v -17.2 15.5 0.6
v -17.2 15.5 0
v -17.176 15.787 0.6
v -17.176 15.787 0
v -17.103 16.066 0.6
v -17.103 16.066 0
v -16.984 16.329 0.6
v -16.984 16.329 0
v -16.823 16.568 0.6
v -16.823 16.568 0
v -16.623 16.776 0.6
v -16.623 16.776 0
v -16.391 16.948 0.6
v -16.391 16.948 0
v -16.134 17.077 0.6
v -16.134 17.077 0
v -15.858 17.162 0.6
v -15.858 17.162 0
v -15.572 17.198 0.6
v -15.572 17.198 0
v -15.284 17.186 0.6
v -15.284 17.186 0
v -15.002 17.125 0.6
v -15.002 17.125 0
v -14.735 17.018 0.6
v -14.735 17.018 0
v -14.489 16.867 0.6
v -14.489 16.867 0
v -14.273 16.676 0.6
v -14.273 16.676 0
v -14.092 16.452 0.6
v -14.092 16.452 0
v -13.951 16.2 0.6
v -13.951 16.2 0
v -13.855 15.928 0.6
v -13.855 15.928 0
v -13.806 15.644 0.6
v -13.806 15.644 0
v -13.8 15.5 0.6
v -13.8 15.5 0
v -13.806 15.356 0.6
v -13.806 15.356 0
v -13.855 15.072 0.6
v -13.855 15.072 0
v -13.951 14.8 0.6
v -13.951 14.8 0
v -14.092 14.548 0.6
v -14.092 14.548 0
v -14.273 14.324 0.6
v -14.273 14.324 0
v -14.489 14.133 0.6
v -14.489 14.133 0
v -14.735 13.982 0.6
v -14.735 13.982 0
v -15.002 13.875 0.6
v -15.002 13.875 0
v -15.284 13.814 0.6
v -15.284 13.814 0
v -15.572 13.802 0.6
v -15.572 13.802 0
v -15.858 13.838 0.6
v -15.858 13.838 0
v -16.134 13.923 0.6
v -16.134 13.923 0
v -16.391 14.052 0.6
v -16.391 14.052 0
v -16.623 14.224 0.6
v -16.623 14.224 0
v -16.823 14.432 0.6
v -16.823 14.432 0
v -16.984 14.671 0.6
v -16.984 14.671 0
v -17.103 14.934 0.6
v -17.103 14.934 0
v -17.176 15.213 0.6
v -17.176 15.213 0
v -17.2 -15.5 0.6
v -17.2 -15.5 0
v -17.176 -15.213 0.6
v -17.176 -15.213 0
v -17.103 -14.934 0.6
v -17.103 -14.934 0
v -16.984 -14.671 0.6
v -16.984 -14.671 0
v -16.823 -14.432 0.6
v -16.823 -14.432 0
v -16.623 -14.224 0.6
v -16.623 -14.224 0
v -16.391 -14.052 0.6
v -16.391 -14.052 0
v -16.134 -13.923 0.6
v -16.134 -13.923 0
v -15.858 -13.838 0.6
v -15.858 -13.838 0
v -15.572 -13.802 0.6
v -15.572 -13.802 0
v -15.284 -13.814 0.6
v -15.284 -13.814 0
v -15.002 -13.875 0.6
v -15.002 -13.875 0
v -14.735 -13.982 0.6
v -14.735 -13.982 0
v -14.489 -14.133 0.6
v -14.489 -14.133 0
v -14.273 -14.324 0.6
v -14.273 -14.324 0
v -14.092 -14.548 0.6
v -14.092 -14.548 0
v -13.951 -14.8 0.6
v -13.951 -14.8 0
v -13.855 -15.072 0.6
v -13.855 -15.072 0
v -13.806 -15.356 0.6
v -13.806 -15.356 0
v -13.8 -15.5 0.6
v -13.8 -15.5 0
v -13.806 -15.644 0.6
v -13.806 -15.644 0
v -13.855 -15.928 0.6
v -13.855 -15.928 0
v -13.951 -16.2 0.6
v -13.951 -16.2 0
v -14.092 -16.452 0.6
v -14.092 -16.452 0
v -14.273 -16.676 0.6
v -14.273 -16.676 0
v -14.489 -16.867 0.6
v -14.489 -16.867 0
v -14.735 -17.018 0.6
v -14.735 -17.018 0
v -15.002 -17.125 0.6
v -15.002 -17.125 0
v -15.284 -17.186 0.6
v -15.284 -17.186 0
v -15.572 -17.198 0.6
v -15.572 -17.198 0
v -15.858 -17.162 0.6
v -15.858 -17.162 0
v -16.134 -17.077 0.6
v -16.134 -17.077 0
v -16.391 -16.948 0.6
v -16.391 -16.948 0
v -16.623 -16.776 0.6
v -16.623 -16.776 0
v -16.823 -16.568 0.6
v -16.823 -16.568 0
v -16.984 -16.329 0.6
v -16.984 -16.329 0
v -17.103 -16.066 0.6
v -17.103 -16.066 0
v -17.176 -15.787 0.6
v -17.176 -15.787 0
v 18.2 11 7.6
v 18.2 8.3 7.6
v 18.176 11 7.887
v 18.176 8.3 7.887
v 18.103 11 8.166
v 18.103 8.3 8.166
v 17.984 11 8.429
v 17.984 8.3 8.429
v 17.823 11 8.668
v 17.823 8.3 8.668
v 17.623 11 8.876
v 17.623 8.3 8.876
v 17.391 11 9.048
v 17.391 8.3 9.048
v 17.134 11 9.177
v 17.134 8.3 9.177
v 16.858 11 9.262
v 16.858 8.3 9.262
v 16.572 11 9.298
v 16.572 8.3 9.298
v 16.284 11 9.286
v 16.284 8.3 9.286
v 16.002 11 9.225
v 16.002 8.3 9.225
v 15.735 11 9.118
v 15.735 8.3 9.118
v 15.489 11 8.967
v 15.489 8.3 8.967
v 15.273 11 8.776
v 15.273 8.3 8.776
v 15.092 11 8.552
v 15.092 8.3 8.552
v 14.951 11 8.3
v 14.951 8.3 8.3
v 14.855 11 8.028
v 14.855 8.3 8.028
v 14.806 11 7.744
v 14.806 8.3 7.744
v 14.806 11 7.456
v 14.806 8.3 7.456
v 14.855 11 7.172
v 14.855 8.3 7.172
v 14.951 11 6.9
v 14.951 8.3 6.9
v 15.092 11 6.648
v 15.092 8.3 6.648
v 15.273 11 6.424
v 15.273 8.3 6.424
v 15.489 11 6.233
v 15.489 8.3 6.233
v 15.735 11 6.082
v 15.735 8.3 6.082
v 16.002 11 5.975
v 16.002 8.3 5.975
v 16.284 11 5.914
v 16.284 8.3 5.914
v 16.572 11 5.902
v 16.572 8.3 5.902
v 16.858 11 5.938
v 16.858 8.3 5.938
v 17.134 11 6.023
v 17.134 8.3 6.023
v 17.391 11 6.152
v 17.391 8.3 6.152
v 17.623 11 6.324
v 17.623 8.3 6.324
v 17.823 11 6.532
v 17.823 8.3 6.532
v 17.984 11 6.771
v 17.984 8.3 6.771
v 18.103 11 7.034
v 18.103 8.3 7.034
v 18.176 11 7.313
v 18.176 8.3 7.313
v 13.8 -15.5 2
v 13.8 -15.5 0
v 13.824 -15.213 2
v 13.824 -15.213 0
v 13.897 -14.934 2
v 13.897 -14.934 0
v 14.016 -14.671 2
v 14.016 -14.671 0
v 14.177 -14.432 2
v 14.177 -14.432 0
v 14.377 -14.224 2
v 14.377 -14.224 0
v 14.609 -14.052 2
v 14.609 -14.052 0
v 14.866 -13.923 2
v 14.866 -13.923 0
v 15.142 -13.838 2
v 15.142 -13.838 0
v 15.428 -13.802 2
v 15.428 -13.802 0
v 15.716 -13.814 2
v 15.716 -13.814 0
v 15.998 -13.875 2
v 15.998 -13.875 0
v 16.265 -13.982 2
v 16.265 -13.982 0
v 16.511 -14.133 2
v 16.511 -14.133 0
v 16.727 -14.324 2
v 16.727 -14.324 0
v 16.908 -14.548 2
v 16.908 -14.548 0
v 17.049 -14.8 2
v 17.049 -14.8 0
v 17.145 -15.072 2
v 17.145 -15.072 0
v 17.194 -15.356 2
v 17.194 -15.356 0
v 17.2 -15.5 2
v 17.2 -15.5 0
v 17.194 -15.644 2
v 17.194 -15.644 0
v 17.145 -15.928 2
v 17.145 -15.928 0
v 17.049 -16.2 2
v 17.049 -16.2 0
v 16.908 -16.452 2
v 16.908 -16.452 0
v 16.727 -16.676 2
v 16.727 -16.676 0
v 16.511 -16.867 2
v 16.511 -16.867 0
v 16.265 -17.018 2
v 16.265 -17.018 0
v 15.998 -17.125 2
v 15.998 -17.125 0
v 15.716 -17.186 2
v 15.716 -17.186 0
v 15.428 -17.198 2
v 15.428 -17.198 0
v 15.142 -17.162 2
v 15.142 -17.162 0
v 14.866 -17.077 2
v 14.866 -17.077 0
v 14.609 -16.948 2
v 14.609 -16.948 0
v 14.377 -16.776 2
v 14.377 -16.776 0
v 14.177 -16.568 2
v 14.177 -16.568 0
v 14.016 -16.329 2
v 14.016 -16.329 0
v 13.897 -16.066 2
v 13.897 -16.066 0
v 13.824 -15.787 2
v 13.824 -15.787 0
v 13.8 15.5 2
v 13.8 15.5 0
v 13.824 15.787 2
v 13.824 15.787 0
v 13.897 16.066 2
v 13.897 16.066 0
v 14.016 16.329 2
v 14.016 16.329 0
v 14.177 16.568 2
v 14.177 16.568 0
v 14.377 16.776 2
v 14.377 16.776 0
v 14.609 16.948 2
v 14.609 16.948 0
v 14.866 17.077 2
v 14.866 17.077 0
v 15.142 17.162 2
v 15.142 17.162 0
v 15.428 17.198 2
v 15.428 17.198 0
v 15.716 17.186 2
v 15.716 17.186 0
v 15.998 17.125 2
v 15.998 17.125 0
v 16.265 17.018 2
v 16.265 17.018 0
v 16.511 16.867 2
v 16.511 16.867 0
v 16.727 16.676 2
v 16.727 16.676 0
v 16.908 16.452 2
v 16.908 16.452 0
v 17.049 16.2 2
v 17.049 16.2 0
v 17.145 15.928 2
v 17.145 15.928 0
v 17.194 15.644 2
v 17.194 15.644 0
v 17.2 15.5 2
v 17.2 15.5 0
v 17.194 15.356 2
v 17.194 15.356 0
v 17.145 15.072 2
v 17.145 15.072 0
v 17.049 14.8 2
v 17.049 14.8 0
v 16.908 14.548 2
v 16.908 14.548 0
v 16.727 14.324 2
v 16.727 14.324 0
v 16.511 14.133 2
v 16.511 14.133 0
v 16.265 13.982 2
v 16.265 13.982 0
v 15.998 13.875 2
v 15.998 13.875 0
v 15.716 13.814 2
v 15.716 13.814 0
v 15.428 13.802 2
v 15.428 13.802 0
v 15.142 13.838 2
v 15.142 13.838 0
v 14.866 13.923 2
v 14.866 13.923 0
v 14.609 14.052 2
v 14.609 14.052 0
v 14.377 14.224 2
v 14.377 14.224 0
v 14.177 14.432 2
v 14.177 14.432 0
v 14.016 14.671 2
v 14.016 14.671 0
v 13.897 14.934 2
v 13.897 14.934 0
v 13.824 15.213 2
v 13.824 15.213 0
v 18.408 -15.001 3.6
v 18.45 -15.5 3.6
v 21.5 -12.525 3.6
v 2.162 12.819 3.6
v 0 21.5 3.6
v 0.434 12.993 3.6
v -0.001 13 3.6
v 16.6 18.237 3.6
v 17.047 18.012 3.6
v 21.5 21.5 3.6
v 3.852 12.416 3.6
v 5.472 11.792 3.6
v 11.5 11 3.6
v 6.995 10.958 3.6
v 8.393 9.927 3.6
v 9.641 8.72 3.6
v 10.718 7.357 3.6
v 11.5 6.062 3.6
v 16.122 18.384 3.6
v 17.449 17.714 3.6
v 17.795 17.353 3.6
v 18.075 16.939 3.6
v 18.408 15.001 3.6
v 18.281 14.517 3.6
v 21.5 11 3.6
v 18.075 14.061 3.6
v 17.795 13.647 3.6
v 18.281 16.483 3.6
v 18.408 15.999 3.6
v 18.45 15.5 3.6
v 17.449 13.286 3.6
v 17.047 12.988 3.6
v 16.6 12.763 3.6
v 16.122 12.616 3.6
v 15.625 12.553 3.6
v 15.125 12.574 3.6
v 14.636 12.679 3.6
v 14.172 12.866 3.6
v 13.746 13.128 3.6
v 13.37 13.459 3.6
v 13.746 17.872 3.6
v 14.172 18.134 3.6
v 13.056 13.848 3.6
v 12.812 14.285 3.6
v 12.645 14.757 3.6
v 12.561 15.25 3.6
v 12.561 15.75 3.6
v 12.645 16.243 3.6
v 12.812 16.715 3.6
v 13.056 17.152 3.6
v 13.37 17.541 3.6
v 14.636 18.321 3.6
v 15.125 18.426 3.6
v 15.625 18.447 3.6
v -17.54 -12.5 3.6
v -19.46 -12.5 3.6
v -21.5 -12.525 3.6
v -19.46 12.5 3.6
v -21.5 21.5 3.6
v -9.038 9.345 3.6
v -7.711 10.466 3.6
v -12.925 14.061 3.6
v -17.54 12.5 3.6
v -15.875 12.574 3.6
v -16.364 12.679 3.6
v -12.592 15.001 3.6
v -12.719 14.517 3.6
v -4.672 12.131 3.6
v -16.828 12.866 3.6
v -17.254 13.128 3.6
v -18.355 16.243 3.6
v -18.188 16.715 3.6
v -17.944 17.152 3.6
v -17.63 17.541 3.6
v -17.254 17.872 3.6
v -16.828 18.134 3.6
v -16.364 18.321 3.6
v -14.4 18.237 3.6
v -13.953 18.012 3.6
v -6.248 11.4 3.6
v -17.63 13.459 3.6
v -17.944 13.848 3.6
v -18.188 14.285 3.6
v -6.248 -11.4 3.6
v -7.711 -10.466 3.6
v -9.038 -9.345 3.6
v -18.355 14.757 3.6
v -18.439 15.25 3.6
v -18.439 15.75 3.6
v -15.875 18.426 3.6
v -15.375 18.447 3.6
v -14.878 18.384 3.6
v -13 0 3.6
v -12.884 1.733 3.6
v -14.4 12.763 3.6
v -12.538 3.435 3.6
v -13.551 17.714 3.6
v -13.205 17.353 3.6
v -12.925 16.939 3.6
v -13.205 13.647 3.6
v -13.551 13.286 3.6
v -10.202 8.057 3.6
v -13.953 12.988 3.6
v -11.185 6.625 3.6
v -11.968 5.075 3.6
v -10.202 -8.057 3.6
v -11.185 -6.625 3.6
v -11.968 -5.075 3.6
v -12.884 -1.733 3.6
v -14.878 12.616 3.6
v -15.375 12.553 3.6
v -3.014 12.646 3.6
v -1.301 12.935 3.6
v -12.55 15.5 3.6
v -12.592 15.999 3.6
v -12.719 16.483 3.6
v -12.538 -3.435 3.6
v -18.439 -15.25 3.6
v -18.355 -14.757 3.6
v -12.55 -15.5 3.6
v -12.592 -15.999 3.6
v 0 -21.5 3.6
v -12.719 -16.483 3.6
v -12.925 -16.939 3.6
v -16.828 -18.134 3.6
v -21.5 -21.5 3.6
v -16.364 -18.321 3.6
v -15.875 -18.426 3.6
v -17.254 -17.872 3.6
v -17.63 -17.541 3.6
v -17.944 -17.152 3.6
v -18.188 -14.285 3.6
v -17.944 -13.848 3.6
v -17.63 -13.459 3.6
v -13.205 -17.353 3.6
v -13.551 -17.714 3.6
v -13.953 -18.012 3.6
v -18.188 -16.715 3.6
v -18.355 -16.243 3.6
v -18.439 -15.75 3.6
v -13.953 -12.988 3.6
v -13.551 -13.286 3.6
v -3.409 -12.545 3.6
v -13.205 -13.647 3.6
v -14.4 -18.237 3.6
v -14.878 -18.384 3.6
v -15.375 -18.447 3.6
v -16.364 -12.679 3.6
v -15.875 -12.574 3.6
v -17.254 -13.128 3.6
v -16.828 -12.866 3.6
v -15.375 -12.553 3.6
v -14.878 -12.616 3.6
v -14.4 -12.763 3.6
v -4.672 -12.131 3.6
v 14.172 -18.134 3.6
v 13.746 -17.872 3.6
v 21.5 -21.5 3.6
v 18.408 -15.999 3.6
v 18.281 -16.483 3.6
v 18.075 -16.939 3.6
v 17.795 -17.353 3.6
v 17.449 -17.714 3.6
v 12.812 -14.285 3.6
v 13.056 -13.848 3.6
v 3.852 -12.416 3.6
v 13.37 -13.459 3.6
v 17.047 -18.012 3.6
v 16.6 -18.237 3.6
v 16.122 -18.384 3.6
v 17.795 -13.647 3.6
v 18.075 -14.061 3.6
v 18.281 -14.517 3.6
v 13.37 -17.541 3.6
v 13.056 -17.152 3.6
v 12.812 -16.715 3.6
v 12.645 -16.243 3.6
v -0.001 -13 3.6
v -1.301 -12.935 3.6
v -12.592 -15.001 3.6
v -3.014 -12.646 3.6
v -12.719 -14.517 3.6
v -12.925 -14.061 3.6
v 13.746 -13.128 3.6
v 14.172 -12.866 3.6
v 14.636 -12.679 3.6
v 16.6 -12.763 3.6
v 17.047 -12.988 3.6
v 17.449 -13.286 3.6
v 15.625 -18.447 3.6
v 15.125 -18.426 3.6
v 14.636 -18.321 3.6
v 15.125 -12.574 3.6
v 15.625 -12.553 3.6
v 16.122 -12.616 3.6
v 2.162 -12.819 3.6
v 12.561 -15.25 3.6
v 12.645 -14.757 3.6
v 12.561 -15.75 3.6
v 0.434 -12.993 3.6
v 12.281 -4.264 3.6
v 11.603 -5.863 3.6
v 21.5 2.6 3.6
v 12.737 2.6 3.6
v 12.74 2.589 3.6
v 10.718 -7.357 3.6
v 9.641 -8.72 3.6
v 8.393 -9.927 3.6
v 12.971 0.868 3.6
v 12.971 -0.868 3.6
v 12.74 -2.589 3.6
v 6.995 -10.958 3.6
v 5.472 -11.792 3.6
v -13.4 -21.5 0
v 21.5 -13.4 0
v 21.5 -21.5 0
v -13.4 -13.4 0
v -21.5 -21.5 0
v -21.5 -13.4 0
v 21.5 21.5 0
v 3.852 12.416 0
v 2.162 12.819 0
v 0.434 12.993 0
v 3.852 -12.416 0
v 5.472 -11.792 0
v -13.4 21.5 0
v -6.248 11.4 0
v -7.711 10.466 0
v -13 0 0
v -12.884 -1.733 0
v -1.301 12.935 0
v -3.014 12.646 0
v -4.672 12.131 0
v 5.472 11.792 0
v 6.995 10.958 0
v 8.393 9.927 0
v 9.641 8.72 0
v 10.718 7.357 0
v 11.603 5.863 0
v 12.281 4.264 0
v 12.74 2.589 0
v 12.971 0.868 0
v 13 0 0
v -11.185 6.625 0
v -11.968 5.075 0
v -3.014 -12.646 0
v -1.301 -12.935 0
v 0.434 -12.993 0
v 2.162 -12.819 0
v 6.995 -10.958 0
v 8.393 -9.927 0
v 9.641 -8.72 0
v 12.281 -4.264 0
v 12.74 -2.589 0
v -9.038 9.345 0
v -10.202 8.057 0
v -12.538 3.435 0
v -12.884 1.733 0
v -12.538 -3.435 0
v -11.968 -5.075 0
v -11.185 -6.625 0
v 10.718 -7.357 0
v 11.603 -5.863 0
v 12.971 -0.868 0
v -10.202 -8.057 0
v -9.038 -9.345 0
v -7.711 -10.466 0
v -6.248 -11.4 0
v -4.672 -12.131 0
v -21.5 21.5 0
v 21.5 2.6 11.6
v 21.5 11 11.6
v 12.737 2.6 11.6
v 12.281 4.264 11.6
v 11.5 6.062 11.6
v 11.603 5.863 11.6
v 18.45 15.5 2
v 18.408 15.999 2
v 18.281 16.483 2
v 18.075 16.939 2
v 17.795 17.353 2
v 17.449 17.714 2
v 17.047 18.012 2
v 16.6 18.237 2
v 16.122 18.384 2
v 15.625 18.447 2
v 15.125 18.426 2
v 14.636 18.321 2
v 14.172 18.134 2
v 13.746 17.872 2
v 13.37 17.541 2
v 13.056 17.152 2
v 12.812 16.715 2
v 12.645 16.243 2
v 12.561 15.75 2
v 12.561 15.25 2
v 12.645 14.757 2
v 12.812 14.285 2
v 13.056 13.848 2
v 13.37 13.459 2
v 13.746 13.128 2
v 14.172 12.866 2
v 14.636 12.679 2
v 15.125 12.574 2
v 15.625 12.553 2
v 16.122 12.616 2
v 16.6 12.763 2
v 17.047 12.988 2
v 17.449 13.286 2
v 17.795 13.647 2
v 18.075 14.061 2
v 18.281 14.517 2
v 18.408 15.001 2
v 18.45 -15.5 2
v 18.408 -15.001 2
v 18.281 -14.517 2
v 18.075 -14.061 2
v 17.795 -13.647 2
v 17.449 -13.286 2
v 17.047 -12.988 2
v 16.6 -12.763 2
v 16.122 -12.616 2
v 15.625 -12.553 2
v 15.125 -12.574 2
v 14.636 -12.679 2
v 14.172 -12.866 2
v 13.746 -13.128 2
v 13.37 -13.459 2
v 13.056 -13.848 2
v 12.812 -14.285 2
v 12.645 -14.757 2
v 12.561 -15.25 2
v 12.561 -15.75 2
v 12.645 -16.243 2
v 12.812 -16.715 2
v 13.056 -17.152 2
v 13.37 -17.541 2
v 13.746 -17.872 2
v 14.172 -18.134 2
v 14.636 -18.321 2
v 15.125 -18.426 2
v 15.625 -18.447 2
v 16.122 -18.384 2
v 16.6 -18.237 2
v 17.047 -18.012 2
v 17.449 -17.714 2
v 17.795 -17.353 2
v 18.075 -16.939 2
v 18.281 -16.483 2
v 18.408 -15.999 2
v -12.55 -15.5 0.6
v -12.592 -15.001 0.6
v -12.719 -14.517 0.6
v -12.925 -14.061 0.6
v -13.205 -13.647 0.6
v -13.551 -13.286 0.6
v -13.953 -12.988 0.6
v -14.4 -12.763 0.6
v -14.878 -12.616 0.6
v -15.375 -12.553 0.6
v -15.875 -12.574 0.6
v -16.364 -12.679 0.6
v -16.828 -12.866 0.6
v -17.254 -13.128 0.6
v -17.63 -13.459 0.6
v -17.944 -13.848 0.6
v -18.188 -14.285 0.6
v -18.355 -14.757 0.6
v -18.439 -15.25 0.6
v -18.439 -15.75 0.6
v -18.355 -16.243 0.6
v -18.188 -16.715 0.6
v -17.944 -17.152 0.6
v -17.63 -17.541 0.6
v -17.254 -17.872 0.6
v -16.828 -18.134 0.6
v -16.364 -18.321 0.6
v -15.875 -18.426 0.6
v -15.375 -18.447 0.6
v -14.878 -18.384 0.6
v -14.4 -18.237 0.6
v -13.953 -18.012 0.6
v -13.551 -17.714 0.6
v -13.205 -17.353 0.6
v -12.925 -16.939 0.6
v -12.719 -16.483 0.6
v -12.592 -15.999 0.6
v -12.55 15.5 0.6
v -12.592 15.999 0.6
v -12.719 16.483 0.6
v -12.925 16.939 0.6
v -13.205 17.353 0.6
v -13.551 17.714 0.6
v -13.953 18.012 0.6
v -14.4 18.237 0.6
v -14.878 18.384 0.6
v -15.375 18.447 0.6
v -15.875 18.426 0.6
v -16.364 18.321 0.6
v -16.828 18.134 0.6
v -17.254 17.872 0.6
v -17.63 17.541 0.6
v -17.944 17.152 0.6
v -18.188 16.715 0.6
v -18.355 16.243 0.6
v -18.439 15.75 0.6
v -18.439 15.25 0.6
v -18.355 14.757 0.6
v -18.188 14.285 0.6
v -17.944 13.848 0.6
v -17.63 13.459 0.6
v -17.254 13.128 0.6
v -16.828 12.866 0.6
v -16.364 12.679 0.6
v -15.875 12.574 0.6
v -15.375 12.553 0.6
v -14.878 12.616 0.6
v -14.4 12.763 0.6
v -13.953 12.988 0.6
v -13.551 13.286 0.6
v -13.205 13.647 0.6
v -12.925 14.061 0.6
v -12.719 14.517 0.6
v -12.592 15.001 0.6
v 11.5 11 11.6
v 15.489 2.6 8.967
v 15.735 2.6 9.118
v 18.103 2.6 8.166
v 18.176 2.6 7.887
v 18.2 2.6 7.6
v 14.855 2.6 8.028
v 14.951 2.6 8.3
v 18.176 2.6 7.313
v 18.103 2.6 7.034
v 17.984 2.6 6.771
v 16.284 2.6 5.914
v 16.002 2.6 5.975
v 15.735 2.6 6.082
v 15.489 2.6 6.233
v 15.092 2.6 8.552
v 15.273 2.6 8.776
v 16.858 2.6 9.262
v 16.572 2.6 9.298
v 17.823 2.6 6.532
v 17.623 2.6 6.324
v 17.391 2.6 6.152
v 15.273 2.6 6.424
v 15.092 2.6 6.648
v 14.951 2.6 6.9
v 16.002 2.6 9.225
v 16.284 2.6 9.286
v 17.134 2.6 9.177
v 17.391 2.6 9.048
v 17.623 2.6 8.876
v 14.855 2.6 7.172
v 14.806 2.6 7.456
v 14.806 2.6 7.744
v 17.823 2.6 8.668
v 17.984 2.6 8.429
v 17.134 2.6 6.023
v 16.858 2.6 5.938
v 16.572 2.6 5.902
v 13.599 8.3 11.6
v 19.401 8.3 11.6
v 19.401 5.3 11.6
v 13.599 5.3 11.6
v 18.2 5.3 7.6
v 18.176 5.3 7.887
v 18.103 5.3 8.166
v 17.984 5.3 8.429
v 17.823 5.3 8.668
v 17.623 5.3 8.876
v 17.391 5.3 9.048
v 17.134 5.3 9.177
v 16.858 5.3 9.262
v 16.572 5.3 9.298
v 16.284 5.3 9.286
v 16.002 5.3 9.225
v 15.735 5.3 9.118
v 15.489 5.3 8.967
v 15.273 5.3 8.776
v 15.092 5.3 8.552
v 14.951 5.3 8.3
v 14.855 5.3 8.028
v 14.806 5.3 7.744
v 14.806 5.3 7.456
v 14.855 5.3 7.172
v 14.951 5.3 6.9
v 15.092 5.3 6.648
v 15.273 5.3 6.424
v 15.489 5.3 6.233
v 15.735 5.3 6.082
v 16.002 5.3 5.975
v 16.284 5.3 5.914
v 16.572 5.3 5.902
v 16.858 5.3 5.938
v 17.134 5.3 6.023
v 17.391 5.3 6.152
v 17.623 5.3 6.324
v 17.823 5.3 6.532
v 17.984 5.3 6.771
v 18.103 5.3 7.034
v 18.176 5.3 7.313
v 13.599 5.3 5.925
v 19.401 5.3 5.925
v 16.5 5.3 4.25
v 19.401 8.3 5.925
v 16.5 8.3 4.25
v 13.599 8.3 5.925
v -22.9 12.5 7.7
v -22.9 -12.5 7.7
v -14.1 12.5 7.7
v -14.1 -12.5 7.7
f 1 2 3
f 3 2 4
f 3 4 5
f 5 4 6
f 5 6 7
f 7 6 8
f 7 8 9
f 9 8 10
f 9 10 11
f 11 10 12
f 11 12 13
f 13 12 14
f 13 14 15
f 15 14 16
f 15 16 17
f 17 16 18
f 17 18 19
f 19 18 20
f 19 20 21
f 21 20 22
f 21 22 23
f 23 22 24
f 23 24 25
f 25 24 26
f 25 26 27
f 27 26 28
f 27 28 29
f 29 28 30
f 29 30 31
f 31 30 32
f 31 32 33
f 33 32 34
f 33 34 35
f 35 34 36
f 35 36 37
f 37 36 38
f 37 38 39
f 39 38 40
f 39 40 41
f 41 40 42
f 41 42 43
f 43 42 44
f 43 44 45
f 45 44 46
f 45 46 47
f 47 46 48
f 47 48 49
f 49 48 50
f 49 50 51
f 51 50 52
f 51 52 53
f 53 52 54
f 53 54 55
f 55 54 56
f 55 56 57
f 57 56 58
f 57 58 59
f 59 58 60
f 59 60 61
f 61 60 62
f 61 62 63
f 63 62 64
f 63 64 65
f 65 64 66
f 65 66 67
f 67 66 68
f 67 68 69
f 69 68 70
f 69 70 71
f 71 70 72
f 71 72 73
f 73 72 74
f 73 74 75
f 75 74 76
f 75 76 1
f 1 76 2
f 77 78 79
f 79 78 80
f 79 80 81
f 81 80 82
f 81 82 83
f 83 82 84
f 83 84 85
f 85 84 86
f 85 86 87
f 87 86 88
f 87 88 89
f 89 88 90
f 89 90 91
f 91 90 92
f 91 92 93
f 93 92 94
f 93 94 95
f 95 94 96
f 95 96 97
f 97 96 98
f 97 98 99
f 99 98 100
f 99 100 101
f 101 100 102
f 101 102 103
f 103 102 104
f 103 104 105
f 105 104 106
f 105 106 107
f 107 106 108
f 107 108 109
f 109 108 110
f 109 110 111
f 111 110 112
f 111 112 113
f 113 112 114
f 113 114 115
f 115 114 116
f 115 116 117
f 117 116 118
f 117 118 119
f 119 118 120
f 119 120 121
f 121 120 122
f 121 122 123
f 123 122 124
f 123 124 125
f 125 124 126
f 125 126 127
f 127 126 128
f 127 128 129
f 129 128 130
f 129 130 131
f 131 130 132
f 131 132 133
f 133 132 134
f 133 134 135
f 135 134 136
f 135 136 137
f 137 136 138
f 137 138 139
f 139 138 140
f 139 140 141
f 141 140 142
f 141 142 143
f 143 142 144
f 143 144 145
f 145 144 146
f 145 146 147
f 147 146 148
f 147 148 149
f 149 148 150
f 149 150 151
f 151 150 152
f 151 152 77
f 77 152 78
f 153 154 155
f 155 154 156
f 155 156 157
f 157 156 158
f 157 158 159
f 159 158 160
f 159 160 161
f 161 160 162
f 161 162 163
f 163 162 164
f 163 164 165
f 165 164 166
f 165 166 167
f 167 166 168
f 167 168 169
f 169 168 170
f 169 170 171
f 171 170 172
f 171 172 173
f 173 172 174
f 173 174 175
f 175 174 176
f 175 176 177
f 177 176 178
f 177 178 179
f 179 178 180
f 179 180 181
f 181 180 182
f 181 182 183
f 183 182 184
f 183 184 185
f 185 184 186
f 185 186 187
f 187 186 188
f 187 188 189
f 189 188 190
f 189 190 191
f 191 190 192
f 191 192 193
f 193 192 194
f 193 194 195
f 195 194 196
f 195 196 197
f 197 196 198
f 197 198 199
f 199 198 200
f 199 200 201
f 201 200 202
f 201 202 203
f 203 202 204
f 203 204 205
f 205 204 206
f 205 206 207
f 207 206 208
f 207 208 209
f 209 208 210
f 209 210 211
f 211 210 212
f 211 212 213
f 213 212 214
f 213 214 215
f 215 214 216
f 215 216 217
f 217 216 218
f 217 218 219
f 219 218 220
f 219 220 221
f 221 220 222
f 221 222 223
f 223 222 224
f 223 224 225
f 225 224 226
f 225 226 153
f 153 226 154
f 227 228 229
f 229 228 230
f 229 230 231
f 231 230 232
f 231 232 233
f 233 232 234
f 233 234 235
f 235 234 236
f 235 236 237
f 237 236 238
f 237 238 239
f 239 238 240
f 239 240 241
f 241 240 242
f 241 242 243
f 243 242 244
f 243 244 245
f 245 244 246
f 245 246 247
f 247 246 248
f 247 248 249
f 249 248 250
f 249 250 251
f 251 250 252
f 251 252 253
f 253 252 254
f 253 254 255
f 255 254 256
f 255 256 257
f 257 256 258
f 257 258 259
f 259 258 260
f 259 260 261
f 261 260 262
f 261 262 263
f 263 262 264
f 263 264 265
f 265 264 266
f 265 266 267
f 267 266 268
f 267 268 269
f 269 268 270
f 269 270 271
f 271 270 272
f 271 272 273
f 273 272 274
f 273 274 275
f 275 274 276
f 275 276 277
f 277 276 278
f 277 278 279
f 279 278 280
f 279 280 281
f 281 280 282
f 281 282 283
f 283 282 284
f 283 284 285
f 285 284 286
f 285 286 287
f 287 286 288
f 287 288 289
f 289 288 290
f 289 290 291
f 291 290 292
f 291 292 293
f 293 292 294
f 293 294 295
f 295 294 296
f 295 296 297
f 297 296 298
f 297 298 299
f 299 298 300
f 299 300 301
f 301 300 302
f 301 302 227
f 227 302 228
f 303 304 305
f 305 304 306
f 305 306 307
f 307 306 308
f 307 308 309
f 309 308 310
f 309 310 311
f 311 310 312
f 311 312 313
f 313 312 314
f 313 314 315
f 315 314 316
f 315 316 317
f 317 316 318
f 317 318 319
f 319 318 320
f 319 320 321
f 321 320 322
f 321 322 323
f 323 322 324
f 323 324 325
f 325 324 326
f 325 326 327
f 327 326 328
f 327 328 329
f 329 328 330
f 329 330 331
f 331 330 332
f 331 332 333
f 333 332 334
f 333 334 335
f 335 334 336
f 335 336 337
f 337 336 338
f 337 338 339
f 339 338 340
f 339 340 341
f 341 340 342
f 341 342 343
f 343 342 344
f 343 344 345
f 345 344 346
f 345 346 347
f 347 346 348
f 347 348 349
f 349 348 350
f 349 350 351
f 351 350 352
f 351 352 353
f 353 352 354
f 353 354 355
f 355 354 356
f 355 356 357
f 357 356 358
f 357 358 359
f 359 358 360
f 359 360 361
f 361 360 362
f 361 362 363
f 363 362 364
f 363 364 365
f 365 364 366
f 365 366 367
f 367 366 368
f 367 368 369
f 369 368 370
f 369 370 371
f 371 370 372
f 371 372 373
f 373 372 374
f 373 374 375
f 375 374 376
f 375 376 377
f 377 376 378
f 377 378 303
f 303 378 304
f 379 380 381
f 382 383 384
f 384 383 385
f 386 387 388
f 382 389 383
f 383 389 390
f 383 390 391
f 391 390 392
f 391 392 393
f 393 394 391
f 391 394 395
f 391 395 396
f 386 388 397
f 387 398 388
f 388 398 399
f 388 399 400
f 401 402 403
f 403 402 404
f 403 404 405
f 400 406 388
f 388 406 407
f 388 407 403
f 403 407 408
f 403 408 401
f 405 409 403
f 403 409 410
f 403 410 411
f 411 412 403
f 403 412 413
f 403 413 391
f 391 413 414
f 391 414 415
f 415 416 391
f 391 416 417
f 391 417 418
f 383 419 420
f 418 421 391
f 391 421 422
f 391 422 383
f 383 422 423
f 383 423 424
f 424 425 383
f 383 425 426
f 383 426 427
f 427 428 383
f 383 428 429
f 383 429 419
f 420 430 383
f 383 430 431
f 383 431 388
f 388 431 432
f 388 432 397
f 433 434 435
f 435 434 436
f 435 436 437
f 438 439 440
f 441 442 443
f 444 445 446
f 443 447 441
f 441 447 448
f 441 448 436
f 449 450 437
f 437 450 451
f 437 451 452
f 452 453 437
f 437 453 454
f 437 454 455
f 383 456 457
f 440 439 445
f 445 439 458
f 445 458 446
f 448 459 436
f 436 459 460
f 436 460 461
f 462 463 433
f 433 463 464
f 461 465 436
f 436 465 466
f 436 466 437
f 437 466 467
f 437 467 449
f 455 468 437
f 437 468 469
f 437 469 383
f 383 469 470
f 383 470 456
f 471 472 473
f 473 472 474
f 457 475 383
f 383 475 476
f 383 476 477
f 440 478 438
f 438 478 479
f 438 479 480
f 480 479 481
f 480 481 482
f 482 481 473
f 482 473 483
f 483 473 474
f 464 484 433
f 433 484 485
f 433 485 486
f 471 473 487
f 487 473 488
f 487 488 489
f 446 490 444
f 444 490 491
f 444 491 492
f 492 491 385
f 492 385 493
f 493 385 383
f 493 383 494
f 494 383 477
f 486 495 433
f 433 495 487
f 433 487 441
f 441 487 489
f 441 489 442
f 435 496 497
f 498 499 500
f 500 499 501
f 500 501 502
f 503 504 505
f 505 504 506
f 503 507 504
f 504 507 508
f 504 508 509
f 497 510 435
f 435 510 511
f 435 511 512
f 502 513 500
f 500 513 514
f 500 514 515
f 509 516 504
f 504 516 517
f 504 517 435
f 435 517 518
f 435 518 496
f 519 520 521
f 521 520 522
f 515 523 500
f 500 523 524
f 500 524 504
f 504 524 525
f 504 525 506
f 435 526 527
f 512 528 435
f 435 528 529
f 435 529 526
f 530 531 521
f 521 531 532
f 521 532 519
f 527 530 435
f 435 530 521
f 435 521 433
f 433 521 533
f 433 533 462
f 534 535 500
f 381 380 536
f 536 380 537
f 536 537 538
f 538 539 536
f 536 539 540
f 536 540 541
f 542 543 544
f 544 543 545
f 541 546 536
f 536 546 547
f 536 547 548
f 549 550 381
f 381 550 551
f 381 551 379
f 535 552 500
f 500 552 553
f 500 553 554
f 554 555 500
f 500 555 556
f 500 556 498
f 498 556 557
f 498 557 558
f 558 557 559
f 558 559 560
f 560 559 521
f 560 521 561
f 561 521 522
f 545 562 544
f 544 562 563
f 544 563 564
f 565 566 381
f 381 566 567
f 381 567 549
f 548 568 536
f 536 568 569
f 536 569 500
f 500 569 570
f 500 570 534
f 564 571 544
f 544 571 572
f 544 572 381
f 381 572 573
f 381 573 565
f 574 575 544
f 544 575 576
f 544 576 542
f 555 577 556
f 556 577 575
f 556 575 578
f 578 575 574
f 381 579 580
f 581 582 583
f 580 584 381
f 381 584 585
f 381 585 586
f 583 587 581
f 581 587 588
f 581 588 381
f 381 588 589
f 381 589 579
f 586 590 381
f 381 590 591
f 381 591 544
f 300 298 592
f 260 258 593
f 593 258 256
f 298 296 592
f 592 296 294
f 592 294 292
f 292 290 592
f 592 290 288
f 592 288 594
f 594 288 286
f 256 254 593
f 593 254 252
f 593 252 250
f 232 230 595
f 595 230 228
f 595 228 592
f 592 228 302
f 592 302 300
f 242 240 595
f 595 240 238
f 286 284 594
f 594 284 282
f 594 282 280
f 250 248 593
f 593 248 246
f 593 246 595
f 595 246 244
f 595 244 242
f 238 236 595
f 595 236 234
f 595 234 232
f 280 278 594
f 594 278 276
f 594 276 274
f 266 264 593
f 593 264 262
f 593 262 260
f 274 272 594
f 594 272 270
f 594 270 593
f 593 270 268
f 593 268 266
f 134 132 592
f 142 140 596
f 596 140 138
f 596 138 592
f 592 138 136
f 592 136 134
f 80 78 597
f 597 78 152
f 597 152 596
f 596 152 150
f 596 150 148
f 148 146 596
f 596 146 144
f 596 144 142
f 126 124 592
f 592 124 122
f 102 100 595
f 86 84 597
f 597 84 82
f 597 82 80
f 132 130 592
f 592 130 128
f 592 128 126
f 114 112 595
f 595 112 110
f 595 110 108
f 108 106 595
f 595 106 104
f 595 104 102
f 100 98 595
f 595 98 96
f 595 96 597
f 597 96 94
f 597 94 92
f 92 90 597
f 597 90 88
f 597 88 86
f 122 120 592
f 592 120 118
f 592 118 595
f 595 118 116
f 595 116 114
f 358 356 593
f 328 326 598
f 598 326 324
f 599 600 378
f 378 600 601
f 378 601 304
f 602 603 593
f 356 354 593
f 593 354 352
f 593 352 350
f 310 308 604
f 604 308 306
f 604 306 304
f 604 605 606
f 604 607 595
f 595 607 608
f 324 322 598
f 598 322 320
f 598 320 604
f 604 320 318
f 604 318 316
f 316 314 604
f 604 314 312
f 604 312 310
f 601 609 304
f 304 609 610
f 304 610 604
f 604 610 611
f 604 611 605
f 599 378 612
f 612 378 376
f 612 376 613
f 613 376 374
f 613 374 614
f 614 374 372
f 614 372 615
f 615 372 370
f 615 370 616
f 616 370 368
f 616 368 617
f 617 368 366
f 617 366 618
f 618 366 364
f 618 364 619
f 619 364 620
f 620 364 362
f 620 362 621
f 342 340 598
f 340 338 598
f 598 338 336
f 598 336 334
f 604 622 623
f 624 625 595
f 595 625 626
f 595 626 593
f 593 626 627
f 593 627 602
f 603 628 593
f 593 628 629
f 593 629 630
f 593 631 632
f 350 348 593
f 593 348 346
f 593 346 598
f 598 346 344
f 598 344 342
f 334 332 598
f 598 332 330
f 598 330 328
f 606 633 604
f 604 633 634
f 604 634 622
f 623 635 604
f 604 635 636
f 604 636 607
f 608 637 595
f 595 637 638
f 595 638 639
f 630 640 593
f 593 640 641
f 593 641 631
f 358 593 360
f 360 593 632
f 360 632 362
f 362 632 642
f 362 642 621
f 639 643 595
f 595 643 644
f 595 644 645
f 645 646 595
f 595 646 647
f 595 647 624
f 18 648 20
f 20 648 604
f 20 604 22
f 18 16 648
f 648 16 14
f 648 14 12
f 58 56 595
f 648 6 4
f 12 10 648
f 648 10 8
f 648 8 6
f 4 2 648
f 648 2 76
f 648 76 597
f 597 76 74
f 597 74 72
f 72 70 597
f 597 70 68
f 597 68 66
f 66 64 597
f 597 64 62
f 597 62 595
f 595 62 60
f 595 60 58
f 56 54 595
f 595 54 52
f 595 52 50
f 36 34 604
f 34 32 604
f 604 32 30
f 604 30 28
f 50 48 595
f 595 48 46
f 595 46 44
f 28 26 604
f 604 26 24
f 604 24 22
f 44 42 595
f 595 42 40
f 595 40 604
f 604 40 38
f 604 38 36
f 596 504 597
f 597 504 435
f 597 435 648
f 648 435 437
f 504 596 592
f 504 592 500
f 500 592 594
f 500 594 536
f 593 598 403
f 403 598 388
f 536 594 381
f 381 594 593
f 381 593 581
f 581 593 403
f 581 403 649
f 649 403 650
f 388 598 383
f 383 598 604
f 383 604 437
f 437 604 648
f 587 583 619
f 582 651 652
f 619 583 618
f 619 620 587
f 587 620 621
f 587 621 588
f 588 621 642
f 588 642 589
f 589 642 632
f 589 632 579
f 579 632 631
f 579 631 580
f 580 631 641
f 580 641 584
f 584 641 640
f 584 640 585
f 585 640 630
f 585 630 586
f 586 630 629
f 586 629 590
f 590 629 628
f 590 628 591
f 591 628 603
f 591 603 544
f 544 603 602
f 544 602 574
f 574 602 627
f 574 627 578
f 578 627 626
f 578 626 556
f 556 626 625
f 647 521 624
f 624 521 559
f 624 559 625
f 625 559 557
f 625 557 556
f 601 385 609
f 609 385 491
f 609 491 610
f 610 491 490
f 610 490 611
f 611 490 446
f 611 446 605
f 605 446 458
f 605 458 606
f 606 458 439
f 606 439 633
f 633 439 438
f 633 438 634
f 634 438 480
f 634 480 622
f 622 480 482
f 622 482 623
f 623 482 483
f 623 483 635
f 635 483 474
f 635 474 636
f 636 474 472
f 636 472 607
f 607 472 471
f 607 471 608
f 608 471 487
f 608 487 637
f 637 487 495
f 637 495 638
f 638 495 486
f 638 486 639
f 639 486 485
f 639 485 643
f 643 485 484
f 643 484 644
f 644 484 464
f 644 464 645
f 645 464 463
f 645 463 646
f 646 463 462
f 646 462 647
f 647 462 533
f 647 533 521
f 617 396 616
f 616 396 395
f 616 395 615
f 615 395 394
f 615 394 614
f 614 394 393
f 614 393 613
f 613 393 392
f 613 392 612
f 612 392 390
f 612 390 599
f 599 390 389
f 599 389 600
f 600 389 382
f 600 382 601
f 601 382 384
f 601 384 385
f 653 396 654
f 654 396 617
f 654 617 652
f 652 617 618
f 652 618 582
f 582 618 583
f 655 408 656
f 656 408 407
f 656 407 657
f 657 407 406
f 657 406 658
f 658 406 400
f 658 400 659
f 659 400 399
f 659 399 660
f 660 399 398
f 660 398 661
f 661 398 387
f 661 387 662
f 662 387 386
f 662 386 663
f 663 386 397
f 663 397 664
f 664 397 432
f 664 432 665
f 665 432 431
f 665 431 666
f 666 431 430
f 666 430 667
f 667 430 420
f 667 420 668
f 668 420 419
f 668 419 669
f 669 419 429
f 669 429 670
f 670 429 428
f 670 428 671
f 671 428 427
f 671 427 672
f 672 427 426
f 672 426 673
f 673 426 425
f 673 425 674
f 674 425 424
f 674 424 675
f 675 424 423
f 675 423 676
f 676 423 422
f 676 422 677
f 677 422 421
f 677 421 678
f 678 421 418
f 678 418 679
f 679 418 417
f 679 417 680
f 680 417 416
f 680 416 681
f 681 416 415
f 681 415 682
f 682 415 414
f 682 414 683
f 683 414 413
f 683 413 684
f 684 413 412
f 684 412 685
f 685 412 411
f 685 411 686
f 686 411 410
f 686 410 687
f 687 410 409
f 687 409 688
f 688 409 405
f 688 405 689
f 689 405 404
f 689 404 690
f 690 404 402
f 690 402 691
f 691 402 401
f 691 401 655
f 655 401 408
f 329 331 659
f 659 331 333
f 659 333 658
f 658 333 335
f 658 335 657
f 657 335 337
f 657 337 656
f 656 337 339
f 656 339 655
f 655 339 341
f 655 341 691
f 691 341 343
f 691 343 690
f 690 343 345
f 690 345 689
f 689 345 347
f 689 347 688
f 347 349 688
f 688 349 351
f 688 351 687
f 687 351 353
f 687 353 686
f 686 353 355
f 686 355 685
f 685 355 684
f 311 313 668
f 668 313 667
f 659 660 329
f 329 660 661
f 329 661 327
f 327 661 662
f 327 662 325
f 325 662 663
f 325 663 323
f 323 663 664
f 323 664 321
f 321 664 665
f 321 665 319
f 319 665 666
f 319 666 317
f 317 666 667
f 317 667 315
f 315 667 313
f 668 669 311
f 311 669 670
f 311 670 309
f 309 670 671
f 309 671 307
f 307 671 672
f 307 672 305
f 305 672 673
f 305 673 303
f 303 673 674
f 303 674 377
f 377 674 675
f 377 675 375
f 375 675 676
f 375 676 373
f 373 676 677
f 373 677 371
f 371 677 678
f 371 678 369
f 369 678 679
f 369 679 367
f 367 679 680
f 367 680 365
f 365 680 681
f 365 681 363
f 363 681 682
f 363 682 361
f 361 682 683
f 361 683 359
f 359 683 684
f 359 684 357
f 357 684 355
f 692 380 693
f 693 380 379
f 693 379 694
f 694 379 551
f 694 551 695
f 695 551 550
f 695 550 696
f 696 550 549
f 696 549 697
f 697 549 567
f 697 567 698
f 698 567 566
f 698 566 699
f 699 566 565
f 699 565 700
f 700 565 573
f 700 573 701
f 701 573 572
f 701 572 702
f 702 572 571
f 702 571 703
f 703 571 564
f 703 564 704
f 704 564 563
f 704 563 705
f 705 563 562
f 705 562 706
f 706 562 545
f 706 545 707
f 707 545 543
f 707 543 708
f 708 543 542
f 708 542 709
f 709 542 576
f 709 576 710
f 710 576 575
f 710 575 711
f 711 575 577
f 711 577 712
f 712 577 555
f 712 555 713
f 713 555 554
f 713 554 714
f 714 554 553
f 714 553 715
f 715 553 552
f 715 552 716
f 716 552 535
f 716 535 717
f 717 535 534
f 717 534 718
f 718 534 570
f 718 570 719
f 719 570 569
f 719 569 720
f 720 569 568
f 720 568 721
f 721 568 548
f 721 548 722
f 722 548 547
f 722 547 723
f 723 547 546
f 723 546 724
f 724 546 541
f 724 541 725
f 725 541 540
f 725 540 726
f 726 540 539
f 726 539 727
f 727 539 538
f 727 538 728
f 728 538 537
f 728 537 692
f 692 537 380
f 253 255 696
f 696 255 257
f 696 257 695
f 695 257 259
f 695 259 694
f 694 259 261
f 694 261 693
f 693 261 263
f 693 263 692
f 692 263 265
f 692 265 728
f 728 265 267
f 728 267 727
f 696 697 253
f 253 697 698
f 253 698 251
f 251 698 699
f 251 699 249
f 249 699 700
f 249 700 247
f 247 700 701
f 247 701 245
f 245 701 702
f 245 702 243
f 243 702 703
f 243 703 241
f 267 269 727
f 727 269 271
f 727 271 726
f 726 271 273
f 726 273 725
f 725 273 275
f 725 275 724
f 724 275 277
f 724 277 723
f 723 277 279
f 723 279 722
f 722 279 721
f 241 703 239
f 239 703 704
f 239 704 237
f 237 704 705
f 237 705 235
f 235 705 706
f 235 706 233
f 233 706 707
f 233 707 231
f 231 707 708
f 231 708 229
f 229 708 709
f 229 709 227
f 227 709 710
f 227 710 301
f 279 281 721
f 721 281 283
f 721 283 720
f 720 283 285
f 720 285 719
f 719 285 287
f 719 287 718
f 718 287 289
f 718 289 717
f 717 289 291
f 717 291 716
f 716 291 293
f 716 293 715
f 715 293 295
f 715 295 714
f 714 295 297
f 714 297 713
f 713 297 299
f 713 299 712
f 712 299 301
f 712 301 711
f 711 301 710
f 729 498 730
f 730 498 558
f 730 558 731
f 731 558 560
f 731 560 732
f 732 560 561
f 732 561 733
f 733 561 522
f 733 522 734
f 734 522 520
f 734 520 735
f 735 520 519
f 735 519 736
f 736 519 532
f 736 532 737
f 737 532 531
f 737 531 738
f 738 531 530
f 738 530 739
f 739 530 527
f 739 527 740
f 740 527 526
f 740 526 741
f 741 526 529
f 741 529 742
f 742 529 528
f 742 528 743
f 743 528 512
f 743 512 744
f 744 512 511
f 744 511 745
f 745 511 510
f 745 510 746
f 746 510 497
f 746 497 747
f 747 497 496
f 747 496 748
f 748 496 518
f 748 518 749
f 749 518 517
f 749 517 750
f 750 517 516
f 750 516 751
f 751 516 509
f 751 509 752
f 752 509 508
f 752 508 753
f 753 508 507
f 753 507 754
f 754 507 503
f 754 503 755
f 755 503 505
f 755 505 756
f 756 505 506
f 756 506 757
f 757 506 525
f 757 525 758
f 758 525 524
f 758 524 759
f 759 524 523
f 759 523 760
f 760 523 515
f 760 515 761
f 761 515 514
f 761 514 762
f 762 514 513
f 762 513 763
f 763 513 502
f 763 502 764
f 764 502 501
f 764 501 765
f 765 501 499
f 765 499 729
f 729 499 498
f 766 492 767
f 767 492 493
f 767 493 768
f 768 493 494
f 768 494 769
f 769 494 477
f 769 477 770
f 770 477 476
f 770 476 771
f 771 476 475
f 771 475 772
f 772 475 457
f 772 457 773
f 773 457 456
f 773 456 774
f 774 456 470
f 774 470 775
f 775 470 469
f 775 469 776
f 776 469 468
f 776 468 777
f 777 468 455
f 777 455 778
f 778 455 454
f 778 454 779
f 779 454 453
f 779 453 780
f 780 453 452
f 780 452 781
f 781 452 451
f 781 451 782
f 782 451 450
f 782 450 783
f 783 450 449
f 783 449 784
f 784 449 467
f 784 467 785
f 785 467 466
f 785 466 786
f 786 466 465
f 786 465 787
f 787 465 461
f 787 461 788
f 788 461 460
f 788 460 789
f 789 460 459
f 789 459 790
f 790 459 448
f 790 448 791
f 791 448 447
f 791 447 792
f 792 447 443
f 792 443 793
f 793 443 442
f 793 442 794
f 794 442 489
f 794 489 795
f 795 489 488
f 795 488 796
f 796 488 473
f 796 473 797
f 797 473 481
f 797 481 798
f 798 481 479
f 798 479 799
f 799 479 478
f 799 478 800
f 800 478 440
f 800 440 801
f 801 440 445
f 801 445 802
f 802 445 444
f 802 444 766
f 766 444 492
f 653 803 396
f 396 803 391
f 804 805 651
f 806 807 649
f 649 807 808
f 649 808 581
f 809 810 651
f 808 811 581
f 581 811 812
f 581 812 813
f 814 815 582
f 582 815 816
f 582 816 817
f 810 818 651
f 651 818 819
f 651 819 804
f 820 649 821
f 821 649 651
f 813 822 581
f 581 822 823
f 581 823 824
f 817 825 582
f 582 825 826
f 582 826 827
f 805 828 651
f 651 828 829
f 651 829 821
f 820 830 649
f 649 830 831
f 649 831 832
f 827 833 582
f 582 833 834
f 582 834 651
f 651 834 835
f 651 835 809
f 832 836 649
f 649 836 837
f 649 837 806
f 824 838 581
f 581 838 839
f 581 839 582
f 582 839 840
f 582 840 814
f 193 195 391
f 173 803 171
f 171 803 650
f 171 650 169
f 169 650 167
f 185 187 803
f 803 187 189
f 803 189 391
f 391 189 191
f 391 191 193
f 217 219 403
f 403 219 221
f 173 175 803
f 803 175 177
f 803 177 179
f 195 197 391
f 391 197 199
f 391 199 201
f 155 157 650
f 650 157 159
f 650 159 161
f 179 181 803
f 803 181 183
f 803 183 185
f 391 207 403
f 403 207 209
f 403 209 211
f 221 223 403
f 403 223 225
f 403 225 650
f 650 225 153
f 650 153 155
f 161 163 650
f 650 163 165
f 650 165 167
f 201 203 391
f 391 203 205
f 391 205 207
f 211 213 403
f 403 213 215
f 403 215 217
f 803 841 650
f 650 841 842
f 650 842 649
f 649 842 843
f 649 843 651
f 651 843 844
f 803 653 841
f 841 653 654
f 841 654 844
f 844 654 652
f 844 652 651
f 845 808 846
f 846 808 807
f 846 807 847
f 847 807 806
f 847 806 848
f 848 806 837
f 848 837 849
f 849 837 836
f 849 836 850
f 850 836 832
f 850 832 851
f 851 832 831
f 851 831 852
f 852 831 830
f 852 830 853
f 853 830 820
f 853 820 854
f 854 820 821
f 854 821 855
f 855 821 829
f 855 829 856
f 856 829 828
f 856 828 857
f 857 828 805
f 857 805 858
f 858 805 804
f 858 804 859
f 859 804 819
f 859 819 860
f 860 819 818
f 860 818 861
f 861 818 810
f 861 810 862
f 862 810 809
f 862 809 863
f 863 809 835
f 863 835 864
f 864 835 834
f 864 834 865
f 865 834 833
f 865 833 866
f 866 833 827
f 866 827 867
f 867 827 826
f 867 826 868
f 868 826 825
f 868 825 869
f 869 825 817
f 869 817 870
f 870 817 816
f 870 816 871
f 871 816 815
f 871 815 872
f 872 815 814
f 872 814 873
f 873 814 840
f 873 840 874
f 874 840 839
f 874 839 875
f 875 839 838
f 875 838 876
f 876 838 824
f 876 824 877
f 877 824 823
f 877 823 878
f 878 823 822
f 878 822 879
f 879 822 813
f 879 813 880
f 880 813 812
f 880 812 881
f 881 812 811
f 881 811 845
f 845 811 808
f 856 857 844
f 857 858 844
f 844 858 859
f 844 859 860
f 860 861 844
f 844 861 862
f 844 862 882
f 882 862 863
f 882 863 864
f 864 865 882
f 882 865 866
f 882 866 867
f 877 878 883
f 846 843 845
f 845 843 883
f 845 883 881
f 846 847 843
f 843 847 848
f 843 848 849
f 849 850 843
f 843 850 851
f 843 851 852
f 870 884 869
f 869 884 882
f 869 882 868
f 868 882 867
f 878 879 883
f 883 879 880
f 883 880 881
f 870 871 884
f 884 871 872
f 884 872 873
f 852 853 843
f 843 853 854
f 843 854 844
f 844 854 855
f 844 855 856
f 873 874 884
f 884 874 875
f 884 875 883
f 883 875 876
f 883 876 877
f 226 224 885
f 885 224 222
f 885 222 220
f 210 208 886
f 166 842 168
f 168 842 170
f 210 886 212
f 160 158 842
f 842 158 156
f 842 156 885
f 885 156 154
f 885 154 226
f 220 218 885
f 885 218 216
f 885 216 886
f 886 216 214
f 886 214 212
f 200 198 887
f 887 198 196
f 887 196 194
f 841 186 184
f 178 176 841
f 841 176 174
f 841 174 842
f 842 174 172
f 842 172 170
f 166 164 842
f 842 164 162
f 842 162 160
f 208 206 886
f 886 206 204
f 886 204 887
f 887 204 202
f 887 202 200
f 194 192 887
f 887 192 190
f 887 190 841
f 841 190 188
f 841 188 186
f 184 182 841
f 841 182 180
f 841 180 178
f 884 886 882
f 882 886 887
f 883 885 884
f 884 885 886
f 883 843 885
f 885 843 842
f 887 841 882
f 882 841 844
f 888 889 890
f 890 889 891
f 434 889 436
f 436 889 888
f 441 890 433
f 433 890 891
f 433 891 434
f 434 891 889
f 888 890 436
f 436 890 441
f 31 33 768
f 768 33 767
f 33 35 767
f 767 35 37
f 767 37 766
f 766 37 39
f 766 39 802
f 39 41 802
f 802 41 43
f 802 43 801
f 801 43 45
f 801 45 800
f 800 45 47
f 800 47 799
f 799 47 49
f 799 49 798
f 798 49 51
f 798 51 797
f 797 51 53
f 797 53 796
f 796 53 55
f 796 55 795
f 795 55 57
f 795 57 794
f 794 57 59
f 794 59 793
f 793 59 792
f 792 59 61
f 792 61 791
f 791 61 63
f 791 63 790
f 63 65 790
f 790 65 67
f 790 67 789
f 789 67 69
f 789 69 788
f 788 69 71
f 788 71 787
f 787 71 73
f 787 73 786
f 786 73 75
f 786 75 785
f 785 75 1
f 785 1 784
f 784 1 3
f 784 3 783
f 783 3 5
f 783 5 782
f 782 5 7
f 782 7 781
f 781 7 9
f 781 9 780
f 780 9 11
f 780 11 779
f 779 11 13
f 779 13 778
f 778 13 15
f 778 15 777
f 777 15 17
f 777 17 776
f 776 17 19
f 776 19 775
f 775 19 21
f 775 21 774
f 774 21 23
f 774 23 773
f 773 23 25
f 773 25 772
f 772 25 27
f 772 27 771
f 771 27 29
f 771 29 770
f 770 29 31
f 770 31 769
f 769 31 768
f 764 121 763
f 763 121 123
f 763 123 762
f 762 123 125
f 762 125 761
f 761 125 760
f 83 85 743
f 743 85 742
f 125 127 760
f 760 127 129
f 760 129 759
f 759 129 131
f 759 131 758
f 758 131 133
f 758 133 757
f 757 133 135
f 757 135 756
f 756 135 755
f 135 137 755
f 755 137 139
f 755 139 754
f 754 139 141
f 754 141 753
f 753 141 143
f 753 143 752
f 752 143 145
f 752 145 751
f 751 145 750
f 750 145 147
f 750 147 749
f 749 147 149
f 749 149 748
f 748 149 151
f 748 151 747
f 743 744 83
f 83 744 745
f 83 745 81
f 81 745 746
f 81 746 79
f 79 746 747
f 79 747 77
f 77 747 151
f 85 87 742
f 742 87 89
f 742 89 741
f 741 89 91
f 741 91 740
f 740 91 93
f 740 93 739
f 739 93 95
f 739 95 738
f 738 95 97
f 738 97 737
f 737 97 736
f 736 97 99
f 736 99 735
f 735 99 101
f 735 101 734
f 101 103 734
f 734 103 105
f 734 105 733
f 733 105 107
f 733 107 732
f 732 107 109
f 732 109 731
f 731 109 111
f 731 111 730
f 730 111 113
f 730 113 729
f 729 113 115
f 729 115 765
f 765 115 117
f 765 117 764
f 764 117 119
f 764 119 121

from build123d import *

# Parameters (mm, degrees)
CROQUIS1_W                   = 43
CROQUIS1_H                   = 43
CROQUIS1_R                   = 13
CROQUIS1_R_2                 = 1.7
SALIENTE_EXTRUIR1_DEPTH      = 3.6
CROQUIS2_R                   = 2.95
CORTAR_EXTRUIR1_DEPTH        = 1.6
SALIENTE_EXTRUIR2_DEPTH      = 8
CROQUIS4_R                   = 1.7
CORTAR_EXTRUIR2_DEPTH        = 10
CORTAR_EXTRUIR3_DEPTH        = 1.5
CORTAR_EXTRUIR3_DEPTH_BACK   = 1.5
SALIENTE_EXTRUIR3_DEPTH      = 12.5
SALIENTE_EXTRUIR3_DEPTH_BACK = 12.5
CROQUIS8_R                   = 2.95
CORTAR_EXTRUIR4_DEPTH        = 3


with BuildPart() as part:
    # Croquis1 → Saliente-Extruir1 (new body)
    with BuildSketch(Plane.XY):
        Rectangle(CROQUIS1_W, CROQUIS1_H)
        Circle(CROQUIS1_R, mode=Mode.SUBTRACT)
        with Locations((-15.5, 15.5)):
            Circle(CROQUIS1_R_2, mode=Mode.SUBTRACT)
        with Locations((-15.5, -15.5)):
            Circle(CROQUIS1_R_2, mode=Mode.SUBTRACT)
        with Locations((15.5, -15.5)):
            Circle(CROQUIS1_R_2, mode=Mode.SUBTRACT)
        with Locations((15.5, 15.5)):
            Circle(CROQUIS1_R_2, mode=Mode.SUBTRACT)
    extrude(amount=SALIENTE_EXTRUIR1_DEPTH)

    # Croquis2 → Cortar-Extruir1 (cut)
    with BuildSketch(Plane.XY.offset(3.6)):
        with Locations((-15.5, 15.5)):
            Circle(CROQUIS2_R)
        with Locations((15.5, 15.5)):
            Circle(CROQUIS2_R)
        with Locations((-15.5, -15.5)):
            Circle(CROQUIS2_R)
        with Locations((15.5, -15.5)):
            Circle(CROQUIS2_R)
    extrude(amount=-CORTAR_EXTRUIR1_DEPTH, mode=Mode.SUBTRACT)

    # Croquis3 → Saliente-Extruir2 (add)
    with BuildSketch(Plane.XY.offset(3.6)):
        with BuildLine():
            Line((21.5, 2.6), (12.737346662, 2.6))
            ThreePointArc((12.737346662, 2.6), (12.241687471, 4.375052899), (11.5, 6.062177826))
            Line((11.5, 6.062177826), (11.5, 11))
            Line((11.5, 11), (21.5, 11))
            Line((21.5, 11), (21.5, 2.6))
        make_face()
    extrude(amount=SALIENTE_EXTRUIR2_DEPTH)

    # Croquis4 → Cortar-Extruir2 (cut)
    with BuildSketch(Plane.XZ.offset(-2.6)):
        with Locations((16.5, 7.6)):
            Circle(CROQUIS4_R)
    extrude(amount=-CORTAR_EXTRUIR2_DEPTH, mode=Mode.SUBTRACT)

    # Croquis6 → Cortar-Extruir3 (cut, two sides)
    with BuildSketch(Plane(origin=(0, 6.8, 0), x_dir=(-1, 0, 0), z_dir=(0, -1, 0))) as cortar_extruir3_sk:
        Polygon((-13.598814897, -9.275), (-13.598814897, -15.925), (-19.401185103, -15.925), (-19.401185103, -9.275), (-19.401185103, -5.925), (-16.5, -4.25), (-13.598814897, -5.925), align=None)
    extrude(amount=CORTAR_EXTRUIR3_DEPTH, mode=Mode.SUBTRACT)
    extrude(cortar_extruir3_sk.sketch, amount=-CORTAR_EXTRUIR3_DEPTH_BACK, mode=Mode.SUBTRACT)

    # Croquis7 → Saliente-Extruir3 (add, two sides)
    with BuildSketch(Plane(origin=(0, 0, 0), x_dir=(1, 0, 0), z_dir=(0, 1, 0))) as saliente_extruir3_sk:
        Polygon((-22.9, -7.7), (-18.5, -2.456284193), (-14.1, -7.7), align=None)
    extrude(amount=SALIENTE_EXTRUIR3_DEPTH)
    extrude(saliente_extruir3_sk.sketch, amount=-SALIENTE_EXTRUIR3_DEPTH_BACK)

    # Croquis8 → Cortar-Extruir4 (cut)
    with BuildSketch(Plane.XY.offset(3.6)):
        with Locations((-15.5, -15.5)):
            Circle(CROQUIS8_R)
        with Locations((-15.5, 15.5)):
            Circle(CROQUIS8_R)
    extrude(amount=-CORTAR_EXTRUIR4_DEPTH, mode=Mode.SUBTRACT)


solid = part.part
